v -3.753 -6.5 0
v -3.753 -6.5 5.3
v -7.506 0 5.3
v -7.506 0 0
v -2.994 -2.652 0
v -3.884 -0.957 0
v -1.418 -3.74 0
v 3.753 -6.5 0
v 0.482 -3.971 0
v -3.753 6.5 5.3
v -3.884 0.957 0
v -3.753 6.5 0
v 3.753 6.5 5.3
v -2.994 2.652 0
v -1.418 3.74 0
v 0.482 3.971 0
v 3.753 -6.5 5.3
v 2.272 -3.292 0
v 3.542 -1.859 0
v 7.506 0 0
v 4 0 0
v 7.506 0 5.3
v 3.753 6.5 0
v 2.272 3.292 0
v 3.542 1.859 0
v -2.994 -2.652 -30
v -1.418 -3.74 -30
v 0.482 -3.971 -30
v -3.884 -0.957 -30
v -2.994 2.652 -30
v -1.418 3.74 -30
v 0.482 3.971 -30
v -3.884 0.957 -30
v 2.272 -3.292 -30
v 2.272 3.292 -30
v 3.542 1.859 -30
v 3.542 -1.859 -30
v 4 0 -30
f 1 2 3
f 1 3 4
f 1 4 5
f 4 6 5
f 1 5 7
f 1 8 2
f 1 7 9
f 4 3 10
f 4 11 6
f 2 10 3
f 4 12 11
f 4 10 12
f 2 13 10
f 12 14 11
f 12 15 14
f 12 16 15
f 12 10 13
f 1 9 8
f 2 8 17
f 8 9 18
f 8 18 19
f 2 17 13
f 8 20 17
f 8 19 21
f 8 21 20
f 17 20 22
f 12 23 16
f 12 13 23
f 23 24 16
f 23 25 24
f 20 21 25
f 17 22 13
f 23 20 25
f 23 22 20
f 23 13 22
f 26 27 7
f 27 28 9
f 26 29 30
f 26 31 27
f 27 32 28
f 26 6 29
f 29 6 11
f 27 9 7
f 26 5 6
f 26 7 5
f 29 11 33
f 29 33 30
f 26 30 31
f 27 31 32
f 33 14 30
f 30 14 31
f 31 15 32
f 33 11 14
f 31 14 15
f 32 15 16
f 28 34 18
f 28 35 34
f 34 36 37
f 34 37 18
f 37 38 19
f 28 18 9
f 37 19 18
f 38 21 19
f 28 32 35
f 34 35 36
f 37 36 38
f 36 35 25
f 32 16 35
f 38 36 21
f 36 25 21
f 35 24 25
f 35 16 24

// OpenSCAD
union() {
    // Hex head
    cylinder(h = 5.3, r = 13 / sqrt(3), $fn = 6);
    // Shank
    translate([0, 0, -30])
        cylinder(h = 30, d = 8);
}
